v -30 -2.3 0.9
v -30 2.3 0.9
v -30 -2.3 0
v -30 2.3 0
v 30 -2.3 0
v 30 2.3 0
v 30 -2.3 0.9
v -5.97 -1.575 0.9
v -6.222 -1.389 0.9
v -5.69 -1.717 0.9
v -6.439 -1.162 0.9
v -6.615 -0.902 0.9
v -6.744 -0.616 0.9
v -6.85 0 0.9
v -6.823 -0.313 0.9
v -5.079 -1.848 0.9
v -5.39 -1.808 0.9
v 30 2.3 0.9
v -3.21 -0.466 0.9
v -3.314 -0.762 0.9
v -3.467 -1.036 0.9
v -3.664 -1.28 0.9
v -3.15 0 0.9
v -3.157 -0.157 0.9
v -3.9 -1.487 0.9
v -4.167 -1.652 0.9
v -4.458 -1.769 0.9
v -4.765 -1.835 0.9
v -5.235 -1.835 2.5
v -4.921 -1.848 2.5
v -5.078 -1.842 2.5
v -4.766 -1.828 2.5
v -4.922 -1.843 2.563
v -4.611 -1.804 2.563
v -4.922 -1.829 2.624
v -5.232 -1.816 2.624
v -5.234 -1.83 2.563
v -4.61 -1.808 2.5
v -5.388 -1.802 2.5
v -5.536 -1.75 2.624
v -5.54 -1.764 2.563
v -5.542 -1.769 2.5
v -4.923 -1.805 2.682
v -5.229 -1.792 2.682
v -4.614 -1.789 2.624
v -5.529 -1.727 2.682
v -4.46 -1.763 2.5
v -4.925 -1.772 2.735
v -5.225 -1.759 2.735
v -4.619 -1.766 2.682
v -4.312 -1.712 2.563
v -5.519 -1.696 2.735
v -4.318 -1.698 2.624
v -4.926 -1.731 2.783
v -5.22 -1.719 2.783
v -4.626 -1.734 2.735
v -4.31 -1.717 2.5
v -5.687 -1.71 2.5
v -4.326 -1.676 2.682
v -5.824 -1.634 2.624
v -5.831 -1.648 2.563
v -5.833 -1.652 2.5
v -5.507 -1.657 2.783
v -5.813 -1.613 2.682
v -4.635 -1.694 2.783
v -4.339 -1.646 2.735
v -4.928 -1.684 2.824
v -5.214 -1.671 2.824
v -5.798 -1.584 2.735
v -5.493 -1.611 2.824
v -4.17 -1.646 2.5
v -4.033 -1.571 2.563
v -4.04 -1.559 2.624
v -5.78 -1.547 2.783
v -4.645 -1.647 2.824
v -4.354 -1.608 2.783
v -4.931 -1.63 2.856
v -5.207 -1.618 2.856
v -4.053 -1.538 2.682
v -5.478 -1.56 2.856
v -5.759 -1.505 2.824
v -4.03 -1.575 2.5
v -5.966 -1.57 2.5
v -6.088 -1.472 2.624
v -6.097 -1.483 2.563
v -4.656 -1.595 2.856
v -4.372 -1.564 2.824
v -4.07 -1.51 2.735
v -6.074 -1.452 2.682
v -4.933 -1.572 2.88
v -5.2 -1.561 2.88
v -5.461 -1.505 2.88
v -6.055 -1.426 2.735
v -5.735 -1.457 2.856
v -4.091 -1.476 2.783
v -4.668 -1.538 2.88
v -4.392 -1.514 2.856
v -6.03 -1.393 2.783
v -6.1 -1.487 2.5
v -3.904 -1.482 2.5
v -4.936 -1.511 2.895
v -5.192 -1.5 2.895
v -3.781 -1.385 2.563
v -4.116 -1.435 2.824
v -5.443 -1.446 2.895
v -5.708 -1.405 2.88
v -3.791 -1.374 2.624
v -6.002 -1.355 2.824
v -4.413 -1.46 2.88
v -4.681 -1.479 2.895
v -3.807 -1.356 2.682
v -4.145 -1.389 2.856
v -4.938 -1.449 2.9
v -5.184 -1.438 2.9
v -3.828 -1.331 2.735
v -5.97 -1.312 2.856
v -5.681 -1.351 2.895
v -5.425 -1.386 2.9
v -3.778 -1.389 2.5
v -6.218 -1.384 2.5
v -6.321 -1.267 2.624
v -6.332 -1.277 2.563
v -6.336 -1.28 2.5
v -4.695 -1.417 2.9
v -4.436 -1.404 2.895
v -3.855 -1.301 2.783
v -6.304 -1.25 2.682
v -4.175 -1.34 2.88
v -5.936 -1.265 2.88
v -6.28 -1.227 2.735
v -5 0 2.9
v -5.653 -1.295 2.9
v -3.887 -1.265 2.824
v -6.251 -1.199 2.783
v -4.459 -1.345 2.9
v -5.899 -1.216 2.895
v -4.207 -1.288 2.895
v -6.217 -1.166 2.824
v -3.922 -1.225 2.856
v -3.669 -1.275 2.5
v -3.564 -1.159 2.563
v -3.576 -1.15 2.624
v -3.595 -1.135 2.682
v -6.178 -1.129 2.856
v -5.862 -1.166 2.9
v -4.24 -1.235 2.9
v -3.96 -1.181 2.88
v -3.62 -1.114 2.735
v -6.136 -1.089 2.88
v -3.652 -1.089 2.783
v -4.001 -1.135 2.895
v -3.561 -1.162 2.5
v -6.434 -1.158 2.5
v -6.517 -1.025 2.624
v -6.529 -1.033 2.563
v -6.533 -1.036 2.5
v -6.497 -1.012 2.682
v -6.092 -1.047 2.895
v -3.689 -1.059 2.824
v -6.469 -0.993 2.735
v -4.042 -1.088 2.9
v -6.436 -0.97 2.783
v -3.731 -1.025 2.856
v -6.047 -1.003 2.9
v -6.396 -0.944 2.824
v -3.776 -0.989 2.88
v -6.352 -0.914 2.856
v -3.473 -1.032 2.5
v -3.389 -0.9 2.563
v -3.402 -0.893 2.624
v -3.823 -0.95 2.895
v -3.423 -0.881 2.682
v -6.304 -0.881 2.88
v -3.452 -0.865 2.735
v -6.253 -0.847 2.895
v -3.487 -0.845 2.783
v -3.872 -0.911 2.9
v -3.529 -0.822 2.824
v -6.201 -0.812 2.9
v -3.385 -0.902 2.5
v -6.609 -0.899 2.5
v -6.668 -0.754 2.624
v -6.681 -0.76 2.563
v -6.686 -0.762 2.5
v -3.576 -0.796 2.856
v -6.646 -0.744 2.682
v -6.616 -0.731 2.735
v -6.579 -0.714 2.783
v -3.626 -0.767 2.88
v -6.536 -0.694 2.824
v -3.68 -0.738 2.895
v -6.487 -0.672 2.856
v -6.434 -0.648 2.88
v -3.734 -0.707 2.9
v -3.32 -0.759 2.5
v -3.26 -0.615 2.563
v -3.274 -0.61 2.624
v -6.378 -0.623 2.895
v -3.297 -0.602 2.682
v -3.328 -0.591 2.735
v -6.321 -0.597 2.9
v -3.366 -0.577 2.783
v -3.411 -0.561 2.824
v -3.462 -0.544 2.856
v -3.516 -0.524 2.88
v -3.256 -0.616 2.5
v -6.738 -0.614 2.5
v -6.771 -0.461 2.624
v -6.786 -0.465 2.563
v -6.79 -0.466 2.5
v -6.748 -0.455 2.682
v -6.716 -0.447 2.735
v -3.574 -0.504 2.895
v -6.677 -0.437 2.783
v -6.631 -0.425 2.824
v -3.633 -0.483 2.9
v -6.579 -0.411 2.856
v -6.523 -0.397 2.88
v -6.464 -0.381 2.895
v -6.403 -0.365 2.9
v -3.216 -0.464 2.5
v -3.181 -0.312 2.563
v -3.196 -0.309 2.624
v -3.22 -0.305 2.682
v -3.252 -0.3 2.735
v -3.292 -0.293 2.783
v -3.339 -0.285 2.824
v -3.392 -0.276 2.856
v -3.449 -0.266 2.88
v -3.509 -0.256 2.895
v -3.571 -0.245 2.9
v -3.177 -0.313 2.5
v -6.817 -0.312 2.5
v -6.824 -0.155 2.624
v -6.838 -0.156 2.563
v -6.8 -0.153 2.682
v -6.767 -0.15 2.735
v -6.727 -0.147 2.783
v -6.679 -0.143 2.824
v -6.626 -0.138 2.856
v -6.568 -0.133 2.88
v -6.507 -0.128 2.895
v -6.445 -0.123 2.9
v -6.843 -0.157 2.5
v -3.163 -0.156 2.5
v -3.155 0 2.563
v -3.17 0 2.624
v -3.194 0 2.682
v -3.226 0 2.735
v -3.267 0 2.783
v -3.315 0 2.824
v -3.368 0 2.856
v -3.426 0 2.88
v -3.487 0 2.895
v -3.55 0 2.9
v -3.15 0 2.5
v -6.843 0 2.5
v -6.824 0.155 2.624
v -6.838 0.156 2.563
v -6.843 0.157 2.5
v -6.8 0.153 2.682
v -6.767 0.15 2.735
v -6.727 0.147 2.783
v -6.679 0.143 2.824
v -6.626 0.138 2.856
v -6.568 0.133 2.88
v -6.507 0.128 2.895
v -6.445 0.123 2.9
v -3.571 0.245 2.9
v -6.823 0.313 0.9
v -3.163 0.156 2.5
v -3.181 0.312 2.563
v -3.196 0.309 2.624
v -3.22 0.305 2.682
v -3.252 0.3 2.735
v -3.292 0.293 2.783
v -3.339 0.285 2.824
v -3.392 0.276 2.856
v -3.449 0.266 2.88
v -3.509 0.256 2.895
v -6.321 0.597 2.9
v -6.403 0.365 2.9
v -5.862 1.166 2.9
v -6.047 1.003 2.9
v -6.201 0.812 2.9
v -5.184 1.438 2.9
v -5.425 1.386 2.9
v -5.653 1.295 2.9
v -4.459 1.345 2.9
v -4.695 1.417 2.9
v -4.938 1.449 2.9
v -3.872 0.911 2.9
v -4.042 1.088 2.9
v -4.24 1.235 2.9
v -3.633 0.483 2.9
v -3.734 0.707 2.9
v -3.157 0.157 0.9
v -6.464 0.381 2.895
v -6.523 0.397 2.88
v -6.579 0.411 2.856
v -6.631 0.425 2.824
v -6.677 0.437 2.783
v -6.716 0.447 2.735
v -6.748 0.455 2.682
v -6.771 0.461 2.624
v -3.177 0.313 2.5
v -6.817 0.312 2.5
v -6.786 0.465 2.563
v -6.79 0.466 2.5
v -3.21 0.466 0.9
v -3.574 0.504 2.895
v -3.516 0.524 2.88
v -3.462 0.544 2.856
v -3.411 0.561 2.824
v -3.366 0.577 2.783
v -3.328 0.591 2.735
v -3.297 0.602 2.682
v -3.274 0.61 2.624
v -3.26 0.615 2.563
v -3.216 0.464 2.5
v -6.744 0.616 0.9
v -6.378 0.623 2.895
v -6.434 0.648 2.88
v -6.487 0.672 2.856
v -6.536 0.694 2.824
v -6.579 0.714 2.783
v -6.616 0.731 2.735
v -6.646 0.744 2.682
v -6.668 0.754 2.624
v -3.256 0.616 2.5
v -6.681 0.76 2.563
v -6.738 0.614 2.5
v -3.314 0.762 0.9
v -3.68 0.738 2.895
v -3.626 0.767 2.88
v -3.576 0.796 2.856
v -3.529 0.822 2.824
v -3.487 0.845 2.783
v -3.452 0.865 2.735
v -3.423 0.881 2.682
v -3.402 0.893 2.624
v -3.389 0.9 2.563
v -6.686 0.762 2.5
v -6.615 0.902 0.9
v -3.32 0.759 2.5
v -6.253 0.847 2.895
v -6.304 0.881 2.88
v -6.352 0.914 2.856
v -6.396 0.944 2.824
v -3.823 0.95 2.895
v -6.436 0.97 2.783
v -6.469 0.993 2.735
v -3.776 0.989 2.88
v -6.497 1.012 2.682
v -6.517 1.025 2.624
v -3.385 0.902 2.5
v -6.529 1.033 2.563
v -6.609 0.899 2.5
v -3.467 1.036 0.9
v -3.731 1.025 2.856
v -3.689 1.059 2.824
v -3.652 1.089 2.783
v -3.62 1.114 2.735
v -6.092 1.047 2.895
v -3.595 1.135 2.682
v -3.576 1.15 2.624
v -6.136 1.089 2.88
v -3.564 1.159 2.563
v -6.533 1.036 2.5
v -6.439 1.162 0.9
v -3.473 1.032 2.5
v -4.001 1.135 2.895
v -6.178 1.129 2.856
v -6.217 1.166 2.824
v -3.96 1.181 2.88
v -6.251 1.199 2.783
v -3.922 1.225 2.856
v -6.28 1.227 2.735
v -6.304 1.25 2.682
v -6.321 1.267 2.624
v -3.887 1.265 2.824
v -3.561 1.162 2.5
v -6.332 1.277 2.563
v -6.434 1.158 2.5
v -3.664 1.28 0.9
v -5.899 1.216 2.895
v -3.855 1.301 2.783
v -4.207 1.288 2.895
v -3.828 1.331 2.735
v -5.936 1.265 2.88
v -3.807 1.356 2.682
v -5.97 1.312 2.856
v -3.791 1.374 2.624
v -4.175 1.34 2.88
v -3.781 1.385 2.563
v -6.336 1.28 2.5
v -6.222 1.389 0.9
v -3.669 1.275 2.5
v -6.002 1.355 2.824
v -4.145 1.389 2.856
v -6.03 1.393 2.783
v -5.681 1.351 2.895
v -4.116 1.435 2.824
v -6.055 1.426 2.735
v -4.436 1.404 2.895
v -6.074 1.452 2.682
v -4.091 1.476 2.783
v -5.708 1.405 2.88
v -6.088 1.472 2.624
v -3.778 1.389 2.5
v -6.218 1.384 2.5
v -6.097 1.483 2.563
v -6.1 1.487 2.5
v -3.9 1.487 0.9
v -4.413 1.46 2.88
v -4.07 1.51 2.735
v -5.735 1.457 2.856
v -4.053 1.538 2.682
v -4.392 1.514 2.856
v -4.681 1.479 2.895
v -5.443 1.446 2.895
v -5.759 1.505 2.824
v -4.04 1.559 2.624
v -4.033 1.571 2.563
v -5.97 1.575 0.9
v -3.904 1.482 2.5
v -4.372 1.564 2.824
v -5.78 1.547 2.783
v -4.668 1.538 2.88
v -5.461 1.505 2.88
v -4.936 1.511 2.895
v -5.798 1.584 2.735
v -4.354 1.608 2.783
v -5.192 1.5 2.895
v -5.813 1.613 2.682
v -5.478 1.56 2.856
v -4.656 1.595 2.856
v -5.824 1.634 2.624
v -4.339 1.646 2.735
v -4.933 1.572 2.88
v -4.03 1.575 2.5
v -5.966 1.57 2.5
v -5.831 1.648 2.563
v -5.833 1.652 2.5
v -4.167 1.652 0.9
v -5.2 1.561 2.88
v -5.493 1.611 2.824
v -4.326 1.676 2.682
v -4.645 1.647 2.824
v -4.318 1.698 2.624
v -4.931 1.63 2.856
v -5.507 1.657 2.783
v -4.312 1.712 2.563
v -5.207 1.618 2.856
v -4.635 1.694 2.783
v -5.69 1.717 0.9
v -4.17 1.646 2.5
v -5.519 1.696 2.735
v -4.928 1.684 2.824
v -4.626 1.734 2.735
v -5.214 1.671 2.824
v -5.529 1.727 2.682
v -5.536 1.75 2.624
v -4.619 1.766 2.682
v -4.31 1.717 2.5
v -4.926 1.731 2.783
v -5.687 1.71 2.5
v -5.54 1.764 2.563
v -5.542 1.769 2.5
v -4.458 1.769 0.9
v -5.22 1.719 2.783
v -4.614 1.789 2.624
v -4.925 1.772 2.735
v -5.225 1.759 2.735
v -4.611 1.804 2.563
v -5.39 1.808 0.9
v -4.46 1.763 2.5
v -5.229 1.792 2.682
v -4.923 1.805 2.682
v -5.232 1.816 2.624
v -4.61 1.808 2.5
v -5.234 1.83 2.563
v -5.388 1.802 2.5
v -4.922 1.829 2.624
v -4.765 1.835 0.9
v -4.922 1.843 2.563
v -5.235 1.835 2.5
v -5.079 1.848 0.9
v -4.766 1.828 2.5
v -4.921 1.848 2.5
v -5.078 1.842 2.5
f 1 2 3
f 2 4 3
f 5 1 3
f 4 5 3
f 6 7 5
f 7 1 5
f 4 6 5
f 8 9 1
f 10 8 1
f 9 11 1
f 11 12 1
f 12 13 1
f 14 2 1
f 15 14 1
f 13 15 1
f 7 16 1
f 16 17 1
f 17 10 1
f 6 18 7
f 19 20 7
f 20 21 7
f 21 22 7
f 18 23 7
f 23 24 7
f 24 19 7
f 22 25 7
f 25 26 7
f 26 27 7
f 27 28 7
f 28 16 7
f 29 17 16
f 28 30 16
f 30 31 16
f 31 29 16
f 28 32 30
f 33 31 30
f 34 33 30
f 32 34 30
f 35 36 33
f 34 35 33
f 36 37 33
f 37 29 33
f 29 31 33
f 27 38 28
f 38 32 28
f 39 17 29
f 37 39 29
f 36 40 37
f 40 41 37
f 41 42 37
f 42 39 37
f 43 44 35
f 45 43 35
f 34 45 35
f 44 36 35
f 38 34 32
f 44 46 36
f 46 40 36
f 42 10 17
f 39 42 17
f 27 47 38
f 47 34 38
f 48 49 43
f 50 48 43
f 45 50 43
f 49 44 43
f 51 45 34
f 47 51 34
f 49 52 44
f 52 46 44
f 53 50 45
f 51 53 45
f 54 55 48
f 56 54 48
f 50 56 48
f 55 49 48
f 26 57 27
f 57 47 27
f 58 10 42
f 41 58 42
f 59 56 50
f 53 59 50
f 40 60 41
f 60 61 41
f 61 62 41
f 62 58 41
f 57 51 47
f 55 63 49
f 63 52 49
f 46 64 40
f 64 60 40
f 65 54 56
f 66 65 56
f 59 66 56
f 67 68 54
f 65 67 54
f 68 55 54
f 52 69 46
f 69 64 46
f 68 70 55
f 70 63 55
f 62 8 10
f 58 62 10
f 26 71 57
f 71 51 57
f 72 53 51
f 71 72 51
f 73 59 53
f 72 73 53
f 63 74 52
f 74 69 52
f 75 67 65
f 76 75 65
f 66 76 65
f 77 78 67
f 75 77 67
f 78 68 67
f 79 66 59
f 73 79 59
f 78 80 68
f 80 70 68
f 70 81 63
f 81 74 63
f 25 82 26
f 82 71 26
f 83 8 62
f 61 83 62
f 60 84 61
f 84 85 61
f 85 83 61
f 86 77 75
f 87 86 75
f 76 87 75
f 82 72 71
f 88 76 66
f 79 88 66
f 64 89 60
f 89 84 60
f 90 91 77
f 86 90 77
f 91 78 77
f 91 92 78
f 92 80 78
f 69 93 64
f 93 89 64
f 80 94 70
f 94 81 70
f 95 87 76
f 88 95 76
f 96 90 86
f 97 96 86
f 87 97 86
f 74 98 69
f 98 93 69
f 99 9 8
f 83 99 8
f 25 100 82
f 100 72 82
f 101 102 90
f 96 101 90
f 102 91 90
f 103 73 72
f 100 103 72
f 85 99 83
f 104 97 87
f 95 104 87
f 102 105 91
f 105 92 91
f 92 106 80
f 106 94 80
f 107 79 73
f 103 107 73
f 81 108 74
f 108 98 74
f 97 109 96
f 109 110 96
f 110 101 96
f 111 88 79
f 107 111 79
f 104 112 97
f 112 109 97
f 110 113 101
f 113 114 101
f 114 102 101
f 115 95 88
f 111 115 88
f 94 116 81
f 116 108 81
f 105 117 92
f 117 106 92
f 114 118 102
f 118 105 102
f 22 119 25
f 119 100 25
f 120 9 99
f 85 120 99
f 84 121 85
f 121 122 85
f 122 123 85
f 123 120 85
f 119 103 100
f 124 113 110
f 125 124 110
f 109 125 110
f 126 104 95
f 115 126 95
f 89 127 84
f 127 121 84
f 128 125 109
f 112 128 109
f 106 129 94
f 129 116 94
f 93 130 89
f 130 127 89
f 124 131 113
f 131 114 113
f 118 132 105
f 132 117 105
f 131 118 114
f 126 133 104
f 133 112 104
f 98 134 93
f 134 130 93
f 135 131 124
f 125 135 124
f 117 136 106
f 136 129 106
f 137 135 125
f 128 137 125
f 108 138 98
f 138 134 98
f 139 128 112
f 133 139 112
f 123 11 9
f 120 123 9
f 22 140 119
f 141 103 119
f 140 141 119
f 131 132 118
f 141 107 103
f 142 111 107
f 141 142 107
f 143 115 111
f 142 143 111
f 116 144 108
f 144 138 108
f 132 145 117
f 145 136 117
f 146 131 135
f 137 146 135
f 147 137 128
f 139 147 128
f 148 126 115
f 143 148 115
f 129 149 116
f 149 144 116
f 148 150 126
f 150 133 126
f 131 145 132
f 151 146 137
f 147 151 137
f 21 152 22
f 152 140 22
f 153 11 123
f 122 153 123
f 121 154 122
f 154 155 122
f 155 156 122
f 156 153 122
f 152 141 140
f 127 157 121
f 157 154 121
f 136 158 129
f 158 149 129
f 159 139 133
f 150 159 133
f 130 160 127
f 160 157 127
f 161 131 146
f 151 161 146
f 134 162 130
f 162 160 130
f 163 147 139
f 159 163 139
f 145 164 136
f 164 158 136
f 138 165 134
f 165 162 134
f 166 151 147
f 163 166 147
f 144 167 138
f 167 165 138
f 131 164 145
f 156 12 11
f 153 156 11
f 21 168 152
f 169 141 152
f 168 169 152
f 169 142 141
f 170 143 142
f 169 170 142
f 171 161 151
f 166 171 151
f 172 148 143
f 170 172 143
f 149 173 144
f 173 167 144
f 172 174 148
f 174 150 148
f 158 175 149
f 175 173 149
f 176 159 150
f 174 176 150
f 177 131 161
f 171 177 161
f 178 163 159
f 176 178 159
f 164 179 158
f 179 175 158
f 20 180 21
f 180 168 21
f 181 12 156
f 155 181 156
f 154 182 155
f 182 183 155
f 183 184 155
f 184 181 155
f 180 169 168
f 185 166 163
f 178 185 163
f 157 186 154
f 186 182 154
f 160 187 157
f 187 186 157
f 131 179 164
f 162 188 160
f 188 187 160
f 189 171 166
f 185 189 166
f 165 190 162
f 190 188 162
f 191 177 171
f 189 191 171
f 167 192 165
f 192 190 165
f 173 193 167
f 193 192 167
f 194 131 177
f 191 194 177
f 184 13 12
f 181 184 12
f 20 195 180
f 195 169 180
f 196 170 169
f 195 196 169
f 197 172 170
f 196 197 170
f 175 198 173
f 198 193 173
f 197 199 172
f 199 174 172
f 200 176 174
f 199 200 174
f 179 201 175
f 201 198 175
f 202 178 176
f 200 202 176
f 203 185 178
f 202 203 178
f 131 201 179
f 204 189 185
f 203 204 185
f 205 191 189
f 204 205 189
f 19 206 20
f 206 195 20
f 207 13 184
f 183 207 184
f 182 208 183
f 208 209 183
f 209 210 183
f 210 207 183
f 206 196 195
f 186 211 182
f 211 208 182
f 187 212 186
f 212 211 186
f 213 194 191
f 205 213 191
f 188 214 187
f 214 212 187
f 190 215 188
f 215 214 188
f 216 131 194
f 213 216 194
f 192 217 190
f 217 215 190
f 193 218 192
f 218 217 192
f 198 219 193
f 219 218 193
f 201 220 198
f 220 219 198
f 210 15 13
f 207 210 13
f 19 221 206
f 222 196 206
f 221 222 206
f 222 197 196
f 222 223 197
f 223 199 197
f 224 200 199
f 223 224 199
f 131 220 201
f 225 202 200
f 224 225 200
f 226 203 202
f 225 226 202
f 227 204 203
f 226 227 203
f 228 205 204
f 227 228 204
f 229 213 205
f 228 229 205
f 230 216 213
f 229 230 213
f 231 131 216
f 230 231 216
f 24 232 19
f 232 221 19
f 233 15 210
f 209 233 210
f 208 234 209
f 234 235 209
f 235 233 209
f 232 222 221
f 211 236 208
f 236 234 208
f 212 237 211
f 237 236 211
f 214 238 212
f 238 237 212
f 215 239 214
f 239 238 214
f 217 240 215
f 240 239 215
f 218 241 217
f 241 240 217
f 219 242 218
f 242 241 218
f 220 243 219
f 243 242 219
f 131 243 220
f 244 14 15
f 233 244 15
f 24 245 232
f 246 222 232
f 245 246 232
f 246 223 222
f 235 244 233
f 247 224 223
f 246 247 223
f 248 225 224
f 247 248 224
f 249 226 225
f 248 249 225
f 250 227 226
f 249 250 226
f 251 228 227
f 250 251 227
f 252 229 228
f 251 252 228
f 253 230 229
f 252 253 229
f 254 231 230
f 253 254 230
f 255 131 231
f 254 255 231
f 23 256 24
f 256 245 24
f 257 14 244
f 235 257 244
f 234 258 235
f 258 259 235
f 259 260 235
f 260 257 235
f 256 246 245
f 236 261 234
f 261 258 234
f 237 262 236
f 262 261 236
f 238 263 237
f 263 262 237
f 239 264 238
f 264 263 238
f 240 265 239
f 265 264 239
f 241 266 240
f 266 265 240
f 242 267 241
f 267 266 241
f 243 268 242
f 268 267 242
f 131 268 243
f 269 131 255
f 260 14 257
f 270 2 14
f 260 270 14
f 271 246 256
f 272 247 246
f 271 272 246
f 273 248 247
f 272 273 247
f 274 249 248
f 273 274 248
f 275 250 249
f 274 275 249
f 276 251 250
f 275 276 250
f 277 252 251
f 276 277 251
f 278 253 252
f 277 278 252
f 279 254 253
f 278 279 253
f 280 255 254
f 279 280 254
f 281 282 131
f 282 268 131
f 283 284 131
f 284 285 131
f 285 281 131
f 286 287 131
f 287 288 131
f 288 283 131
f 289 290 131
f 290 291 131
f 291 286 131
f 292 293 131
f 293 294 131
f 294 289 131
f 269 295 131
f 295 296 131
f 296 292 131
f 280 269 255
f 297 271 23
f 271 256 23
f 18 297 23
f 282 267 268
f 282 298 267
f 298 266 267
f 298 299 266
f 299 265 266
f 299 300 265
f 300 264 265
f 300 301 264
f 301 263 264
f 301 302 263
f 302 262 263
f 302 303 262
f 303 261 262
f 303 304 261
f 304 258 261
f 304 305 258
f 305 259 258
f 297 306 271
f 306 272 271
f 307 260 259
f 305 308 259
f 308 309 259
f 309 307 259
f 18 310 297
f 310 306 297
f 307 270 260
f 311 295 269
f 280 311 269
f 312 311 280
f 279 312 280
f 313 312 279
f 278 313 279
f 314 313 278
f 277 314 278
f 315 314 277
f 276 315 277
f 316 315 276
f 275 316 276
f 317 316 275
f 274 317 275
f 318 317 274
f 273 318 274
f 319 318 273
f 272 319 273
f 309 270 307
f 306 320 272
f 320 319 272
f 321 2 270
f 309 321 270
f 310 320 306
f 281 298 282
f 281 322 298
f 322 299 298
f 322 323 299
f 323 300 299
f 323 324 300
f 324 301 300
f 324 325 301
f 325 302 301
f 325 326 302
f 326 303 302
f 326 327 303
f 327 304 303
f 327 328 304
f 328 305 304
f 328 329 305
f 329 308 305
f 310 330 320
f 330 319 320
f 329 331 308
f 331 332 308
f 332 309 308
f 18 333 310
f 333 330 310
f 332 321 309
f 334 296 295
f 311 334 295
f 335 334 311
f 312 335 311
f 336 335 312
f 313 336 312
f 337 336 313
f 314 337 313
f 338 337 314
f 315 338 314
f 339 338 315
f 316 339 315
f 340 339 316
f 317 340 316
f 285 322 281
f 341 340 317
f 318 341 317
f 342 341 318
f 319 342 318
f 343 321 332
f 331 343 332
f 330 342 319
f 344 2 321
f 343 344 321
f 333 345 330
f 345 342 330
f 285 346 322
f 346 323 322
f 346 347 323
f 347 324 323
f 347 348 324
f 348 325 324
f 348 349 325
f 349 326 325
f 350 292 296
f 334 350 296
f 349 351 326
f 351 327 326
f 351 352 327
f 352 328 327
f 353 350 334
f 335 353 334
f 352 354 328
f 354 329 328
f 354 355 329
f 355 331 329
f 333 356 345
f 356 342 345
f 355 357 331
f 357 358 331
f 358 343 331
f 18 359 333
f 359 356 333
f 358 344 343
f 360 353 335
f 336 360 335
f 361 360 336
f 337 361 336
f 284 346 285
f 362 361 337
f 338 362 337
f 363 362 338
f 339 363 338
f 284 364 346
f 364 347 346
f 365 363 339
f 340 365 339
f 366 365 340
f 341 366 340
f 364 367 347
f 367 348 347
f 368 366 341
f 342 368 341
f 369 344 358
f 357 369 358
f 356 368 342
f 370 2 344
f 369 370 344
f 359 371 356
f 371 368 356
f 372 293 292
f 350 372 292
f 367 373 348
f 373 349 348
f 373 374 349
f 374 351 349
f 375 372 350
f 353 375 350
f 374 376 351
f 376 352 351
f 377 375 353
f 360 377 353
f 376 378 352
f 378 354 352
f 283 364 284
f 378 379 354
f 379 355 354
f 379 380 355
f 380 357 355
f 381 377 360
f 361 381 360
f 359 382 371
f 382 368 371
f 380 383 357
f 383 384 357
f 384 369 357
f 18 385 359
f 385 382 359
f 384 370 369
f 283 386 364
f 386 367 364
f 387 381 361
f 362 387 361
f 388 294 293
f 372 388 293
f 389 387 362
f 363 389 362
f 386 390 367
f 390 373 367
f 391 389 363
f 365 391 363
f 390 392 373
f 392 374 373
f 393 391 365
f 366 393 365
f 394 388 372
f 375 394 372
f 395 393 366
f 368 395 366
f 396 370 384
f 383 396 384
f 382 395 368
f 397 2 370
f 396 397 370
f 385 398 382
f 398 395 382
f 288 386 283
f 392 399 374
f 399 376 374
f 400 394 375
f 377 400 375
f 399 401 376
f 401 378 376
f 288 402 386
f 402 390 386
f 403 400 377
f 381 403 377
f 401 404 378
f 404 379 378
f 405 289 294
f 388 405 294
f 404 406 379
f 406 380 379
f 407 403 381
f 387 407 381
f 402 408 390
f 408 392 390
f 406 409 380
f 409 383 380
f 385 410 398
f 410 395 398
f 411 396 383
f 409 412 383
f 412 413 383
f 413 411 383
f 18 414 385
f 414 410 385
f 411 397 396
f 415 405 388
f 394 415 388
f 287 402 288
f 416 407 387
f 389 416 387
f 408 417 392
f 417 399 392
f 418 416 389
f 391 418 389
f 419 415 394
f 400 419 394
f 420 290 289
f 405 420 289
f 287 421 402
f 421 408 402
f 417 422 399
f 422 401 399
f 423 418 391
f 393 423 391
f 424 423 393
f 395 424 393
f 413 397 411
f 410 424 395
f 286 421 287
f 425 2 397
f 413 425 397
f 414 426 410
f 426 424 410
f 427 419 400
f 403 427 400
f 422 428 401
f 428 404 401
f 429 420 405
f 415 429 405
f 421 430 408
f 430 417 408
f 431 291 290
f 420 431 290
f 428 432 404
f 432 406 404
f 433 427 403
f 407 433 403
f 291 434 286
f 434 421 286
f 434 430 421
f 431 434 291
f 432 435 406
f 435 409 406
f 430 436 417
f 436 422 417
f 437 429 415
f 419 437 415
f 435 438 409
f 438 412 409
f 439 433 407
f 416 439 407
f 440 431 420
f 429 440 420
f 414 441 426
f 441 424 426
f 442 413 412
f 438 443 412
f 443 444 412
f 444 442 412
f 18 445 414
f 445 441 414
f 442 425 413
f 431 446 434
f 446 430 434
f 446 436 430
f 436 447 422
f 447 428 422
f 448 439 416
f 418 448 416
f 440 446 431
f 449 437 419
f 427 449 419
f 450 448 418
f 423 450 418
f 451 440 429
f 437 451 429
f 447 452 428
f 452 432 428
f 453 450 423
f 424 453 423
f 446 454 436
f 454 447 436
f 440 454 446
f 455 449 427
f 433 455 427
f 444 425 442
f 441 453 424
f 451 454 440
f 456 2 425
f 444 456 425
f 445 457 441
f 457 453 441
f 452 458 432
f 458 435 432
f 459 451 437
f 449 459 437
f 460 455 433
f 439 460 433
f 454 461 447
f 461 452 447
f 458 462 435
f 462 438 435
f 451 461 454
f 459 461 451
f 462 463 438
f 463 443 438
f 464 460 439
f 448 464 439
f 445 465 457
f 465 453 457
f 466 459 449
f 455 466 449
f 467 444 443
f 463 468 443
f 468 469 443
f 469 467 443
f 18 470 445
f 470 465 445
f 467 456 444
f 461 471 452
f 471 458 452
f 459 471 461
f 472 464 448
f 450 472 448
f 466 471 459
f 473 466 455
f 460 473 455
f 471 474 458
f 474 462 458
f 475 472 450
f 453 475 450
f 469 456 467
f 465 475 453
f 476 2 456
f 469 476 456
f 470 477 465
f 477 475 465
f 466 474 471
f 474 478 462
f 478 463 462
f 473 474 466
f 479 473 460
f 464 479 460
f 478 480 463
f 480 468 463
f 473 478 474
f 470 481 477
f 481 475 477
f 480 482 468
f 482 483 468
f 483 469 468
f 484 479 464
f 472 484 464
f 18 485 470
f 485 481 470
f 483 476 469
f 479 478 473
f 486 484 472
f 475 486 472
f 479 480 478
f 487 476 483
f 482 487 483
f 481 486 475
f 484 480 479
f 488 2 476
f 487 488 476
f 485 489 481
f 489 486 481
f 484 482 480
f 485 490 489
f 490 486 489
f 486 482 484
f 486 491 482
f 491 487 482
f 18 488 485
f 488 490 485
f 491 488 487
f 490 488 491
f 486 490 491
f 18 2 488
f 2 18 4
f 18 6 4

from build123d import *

# Parameters (mm, degrees)
SKICA1_W                = 60
SKICA1_H                = 4.6
P_IDAT_VYSUNUT_M1_DEPTH = 0.9
SKICA2_R                = 1.85
P_IDAT_VYSUNUT_M2_DEPTH = 2
ZAOBLIT1_R              = 0.4


with BuildPart() as part:
    # Skica1 → Přidat vysunutím1 (new body)
    with BuildSketch(Plane.XY):
        Rectangle(SKICA1_W, SKICA1_H)
    extrude(amount=P_IDAT_VYSUNUT_M1_DEPTH)

    # Skica2 → Přidat vysunutím2 (add)
    with BuildSketch(Plane.XY.offset(0.9)):
        with Locations((-5, 0)):
            Circle(SKICA2_R)
    extrude(amount=P_IDAT_VYSUNUT_M2_DEPTH)

    # Zaoblit1
    zaoblit1_edges = [part.edges().sort_by_distance(p)[0] for p in [
        (-6.85, 0, 2.9),
    ]]
    fillet(zaoblit1_edges, radius=ZAOBLIT1_R)


solid = part.part
